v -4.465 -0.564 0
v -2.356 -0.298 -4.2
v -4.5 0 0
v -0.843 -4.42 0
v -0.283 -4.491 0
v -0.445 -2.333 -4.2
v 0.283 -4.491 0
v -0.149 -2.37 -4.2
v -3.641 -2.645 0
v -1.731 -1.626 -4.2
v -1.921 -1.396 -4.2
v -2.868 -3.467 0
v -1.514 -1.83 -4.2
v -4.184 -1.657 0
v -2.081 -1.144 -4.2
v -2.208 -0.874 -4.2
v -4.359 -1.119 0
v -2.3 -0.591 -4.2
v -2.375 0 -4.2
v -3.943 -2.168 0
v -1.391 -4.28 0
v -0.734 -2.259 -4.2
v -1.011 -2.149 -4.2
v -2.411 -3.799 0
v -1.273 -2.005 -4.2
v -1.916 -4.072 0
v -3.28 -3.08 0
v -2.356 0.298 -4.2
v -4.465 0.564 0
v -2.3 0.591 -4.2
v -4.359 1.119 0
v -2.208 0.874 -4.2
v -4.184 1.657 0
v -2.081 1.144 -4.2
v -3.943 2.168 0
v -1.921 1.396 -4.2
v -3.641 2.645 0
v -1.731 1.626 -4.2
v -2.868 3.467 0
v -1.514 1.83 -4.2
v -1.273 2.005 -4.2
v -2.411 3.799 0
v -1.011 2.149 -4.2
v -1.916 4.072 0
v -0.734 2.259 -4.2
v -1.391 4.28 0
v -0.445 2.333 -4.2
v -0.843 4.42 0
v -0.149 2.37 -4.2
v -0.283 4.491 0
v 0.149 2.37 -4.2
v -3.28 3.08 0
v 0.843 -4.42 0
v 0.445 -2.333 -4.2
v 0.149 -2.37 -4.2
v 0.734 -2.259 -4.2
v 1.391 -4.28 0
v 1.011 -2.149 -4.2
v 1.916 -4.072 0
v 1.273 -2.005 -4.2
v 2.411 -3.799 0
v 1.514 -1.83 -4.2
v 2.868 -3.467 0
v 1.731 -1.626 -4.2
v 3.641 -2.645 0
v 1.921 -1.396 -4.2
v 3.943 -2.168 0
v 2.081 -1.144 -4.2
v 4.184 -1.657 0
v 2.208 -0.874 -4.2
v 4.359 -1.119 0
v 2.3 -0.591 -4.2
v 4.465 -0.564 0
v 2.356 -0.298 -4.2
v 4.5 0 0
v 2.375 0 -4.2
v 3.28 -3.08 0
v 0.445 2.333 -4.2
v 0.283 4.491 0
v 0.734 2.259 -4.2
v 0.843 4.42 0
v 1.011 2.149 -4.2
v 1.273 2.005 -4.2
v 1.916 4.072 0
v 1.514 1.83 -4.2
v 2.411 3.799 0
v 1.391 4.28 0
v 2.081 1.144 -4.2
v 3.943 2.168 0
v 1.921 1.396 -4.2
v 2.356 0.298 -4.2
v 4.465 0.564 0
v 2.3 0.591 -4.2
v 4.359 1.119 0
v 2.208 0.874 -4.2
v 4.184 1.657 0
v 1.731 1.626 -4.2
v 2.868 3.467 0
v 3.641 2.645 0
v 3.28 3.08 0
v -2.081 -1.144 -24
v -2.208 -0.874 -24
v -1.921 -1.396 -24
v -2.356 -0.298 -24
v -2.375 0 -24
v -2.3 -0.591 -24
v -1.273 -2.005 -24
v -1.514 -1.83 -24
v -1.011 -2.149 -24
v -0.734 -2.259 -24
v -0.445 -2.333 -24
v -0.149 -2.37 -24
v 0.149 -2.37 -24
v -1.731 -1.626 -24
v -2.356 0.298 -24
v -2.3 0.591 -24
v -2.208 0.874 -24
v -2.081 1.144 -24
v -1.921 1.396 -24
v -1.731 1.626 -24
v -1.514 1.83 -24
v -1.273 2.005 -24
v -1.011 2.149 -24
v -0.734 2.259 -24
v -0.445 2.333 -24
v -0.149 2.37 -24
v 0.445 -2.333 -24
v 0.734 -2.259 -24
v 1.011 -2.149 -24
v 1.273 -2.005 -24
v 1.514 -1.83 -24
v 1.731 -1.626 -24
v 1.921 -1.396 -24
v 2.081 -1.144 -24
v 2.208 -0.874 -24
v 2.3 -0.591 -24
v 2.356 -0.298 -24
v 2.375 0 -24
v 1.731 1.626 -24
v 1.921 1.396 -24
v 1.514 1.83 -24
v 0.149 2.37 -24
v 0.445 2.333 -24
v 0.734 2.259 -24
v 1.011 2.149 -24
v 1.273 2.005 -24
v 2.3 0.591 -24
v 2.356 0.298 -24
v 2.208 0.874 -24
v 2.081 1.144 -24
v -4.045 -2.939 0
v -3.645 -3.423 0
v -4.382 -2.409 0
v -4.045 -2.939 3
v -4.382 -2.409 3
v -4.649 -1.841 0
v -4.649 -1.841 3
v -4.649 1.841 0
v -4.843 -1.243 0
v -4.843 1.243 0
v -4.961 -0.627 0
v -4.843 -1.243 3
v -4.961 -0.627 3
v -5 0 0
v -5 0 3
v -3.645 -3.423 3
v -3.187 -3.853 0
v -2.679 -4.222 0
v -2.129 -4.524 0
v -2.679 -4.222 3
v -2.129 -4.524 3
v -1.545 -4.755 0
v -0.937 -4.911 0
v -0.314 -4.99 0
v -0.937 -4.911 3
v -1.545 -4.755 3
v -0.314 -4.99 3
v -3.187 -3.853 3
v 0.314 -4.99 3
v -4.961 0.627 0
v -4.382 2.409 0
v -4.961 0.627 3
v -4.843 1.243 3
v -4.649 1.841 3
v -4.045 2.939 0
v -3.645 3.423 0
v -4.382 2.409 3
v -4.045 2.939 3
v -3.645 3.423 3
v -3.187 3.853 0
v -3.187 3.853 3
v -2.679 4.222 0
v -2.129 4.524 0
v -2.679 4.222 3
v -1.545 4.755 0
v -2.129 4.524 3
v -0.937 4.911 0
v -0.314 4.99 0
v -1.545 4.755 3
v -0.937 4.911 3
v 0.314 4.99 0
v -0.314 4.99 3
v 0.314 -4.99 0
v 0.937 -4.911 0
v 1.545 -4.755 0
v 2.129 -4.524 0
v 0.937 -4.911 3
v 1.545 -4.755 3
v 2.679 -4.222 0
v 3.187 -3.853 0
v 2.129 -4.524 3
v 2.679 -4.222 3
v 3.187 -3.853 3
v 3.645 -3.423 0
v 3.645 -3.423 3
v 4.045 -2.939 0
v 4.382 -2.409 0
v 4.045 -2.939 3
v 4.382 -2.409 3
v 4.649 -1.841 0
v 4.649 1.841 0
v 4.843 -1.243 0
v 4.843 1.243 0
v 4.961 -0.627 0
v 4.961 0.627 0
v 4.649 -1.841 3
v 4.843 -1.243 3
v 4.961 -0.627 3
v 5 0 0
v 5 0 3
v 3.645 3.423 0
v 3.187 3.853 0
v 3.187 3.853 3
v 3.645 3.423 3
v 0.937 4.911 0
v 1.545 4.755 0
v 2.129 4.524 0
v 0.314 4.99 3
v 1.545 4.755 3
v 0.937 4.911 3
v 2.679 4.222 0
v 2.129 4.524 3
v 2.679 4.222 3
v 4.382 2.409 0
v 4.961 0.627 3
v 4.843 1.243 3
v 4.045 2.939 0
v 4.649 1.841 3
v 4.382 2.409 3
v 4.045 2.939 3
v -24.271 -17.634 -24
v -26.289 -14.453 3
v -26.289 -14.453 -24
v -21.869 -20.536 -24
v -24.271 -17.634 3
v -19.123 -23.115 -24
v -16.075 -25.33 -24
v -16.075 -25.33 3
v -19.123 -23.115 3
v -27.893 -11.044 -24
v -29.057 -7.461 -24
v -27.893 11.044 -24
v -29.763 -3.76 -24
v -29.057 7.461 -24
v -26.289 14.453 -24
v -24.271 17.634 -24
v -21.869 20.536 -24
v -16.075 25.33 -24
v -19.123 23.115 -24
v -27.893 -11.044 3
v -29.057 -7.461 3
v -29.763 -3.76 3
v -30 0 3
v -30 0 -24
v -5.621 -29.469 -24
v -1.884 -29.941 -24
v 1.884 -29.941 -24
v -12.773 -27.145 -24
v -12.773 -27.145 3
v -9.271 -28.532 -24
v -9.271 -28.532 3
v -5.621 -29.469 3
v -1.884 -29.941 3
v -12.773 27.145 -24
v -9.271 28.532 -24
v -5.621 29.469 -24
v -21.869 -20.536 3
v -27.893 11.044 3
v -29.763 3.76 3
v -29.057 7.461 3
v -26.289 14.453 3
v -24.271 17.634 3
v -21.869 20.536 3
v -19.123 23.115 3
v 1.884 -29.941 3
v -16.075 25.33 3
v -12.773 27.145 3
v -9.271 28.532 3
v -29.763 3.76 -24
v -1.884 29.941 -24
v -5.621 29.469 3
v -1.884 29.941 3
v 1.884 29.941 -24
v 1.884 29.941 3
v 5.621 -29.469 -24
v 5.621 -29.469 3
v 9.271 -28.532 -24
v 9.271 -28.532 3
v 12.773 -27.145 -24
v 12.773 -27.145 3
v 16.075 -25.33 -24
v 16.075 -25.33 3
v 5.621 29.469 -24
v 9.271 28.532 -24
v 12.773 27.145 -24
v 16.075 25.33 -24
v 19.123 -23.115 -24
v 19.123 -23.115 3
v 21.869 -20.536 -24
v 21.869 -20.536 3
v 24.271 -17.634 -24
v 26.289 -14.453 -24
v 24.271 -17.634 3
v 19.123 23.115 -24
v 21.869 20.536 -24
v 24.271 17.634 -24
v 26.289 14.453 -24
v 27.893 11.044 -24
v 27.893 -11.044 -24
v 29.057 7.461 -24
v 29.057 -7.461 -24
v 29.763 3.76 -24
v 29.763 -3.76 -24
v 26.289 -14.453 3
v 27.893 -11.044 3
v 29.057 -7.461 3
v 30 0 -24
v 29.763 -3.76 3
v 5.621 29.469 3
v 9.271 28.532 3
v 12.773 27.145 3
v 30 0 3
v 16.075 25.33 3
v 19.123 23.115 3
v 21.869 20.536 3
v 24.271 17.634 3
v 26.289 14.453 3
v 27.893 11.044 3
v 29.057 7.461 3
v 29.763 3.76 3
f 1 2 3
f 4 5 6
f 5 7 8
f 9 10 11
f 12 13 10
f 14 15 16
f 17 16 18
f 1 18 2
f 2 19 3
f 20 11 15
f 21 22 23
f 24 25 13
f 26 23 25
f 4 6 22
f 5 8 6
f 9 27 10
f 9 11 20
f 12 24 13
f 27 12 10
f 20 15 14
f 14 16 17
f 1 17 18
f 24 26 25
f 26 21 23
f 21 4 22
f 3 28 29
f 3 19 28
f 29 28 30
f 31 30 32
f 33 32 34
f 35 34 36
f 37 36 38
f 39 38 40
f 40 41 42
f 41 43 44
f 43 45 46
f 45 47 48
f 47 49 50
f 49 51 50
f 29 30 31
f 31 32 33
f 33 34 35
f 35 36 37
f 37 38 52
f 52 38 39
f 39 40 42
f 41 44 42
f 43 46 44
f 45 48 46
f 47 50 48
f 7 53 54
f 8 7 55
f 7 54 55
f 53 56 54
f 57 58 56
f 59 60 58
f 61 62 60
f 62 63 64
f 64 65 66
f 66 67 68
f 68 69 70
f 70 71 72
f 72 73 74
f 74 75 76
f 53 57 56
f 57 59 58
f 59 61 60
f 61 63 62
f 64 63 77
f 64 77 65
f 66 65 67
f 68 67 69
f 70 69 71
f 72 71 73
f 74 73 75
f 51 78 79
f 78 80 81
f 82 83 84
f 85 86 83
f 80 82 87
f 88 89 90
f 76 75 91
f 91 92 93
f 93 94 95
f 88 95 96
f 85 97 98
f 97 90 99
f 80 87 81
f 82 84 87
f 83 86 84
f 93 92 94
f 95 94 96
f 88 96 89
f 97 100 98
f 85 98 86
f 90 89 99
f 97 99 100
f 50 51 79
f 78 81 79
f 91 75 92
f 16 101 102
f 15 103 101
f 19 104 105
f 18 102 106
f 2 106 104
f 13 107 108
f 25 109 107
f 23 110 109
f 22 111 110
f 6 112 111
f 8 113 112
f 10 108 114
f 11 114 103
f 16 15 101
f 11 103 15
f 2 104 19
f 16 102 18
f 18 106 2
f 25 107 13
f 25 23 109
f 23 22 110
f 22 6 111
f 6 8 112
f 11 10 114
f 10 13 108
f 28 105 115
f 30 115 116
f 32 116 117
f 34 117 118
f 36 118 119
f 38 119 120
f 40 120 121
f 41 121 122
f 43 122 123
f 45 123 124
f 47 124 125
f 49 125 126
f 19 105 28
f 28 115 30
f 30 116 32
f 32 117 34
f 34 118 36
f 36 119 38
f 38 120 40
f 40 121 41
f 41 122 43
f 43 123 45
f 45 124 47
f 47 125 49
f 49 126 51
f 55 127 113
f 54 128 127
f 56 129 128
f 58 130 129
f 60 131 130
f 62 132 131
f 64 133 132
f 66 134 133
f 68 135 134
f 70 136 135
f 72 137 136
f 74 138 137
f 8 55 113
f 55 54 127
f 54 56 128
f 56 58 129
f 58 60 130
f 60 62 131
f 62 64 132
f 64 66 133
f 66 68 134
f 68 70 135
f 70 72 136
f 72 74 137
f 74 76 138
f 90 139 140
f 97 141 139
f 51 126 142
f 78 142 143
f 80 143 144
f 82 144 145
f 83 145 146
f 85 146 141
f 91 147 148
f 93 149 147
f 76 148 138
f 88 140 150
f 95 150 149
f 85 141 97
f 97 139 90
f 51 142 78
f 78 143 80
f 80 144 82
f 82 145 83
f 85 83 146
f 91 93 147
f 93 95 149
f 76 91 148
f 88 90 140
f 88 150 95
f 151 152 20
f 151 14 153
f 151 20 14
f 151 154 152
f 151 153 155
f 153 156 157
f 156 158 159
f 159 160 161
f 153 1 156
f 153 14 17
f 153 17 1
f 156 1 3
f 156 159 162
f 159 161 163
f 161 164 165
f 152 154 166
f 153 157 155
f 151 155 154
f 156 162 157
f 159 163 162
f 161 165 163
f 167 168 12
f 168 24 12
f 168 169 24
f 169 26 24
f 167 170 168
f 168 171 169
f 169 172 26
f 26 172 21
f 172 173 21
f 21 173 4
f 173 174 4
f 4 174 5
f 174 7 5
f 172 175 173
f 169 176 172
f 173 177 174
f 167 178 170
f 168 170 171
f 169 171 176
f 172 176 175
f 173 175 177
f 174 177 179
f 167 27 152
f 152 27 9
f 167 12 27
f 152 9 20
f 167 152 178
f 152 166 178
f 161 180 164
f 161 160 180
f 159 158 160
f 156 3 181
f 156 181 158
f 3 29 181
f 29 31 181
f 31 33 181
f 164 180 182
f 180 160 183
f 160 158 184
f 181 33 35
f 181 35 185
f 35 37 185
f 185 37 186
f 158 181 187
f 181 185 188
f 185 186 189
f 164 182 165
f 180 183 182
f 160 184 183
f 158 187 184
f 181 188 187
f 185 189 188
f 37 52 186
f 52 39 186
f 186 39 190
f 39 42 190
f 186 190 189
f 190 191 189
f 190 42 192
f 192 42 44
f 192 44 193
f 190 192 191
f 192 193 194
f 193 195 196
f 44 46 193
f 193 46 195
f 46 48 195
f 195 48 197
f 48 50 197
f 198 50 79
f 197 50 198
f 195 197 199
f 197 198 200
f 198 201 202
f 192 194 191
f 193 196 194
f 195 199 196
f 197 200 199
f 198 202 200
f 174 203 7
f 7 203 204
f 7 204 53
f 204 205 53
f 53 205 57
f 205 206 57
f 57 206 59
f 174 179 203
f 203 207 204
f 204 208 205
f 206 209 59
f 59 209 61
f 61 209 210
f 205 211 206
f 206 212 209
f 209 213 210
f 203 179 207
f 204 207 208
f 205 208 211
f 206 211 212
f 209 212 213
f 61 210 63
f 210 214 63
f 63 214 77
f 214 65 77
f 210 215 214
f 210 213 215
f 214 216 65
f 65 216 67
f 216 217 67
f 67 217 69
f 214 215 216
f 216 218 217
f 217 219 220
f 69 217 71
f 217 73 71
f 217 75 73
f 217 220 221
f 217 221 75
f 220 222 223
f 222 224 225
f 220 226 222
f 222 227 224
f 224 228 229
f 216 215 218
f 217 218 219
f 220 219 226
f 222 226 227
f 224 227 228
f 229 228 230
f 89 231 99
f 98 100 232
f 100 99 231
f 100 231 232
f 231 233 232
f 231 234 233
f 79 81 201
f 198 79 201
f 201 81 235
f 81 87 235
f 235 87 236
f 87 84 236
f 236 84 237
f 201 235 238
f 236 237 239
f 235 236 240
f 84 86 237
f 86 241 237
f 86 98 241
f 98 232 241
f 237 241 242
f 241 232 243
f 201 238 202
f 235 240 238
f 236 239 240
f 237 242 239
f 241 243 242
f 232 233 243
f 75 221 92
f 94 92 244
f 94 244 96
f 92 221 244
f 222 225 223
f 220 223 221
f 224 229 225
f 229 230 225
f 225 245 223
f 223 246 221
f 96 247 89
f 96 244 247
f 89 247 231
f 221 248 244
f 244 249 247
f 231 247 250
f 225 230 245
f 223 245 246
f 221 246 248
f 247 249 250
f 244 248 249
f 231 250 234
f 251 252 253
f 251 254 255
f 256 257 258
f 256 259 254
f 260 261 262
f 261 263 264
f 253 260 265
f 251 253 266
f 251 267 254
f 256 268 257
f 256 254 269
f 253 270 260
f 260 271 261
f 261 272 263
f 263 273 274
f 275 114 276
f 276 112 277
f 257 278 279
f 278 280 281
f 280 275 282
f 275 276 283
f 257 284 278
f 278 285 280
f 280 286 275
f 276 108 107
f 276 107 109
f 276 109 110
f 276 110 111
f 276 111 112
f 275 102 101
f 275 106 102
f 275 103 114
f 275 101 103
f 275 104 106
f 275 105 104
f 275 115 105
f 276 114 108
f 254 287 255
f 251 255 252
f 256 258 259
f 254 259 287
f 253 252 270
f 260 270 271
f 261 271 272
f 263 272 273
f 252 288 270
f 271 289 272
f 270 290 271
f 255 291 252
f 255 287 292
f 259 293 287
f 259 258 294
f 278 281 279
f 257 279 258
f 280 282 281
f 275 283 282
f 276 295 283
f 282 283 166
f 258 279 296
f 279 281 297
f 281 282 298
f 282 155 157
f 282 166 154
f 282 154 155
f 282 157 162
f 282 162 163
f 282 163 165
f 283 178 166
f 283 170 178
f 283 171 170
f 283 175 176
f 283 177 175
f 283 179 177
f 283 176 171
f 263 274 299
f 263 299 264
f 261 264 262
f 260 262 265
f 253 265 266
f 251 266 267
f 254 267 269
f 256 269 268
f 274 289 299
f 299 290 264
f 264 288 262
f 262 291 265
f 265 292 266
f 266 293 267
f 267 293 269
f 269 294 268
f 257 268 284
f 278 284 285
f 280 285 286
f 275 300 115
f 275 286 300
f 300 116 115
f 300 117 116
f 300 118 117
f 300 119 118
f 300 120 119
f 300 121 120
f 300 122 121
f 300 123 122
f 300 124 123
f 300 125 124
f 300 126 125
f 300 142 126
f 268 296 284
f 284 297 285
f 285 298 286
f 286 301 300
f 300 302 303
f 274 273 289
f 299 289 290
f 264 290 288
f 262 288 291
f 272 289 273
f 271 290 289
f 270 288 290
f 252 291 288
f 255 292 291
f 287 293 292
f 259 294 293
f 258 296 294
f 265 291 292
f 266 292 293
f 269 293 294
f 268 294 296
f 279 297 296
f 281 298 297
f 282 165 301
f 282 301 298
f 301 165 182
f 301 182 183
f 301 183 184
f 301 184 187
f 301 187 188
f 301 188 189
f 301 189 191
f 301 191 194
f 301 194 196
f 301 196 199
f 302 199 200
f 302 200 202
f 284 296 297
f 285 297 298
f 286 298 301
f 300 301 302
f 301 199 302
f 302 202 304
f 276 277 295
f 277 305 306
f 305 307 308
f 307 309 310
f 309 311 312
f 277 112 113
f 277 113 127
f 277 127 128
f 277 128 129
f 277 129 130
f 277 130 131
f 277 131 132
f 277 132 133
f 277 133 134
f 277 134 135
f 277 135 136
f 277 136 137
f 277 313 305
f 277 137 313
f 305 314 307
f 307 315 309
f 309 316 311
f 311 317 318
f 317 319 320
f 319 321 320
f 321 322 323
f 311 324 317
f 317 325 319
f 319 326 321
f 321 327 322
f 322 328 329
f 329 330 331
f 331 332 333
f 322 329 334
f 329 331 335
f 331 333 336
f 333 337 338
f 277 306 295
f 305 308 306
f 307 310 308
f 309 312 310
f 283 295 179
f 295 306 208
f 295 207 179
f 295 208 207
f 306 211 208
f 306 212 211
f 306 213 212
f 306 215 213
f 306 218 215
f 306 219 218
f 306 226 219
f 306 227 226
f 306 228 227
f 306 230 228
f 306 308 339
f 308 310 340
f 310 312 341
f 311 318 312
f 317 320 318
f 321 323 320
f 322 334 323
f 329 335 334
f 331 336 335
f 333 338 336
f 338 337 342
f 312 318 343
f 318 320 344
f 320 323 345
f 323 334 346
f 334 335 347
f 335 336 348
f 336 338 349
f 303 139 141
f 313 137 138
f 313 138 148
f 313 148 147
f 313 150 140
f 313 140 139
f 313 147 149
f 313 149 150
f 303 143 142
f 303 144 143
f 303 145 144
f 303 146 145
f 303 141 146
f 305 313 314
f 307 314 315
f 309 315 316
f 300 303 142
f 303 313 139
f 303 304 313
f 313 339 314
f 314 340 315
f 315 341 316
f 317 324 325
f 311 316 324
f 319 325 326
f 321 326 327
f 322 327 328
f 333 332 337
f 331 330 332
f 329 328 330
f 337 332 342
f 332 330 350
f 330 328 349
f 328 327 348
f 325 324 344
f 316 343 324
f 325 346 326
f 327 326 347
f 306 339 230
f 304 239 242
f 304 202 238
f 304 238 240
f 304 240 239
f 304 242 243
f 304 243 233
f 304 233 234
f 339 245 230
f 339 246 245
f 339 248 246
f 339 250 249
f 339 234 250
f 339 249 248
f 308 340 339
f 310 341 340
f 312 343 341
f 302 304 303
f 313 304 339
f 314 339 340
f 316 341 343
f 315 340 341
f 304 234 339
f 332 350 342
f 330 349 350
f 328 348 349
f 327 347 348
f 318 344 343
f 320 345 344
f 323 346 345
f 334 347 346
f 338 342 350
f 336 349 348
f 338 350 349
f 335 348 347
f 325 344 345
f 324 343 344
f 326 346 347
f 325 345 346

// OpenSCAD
$fn = 50;


difference() {
	union() {
		translate(v = [0, 0, -24.0000000000]) {
			cylinder(h = 27, r = 30.0000000000);
		}
	}
	union() {
		translate(v = [0, 0, 0]) {
			rotate(a = [0, 0, 0]) {
				difference() {
					union() {
						translate(v = [0, 0, -27.0000000000]) {
							cylinder(h = 27, r = 2.2500000000);
						}
						translate(v = [0, 0, -4.2000000000]) {
							cylinder(h = 4.2000000000, r1 = 2.3750000000, r2 = 4.5000000000);
						}
						translate(v = [0, 0, -27.0000000000]) {
							cylinder(h = 27, r = 2.3750000000);
						}
						translate(v = [0, 0, -27.0000000000]) {
							cylinder(h = 27, r = 2.2500000000);
						}
					}
					union();
				}
			}
		}
		#cylinder(h = 3, r = 5.0000000000);
	}
}
